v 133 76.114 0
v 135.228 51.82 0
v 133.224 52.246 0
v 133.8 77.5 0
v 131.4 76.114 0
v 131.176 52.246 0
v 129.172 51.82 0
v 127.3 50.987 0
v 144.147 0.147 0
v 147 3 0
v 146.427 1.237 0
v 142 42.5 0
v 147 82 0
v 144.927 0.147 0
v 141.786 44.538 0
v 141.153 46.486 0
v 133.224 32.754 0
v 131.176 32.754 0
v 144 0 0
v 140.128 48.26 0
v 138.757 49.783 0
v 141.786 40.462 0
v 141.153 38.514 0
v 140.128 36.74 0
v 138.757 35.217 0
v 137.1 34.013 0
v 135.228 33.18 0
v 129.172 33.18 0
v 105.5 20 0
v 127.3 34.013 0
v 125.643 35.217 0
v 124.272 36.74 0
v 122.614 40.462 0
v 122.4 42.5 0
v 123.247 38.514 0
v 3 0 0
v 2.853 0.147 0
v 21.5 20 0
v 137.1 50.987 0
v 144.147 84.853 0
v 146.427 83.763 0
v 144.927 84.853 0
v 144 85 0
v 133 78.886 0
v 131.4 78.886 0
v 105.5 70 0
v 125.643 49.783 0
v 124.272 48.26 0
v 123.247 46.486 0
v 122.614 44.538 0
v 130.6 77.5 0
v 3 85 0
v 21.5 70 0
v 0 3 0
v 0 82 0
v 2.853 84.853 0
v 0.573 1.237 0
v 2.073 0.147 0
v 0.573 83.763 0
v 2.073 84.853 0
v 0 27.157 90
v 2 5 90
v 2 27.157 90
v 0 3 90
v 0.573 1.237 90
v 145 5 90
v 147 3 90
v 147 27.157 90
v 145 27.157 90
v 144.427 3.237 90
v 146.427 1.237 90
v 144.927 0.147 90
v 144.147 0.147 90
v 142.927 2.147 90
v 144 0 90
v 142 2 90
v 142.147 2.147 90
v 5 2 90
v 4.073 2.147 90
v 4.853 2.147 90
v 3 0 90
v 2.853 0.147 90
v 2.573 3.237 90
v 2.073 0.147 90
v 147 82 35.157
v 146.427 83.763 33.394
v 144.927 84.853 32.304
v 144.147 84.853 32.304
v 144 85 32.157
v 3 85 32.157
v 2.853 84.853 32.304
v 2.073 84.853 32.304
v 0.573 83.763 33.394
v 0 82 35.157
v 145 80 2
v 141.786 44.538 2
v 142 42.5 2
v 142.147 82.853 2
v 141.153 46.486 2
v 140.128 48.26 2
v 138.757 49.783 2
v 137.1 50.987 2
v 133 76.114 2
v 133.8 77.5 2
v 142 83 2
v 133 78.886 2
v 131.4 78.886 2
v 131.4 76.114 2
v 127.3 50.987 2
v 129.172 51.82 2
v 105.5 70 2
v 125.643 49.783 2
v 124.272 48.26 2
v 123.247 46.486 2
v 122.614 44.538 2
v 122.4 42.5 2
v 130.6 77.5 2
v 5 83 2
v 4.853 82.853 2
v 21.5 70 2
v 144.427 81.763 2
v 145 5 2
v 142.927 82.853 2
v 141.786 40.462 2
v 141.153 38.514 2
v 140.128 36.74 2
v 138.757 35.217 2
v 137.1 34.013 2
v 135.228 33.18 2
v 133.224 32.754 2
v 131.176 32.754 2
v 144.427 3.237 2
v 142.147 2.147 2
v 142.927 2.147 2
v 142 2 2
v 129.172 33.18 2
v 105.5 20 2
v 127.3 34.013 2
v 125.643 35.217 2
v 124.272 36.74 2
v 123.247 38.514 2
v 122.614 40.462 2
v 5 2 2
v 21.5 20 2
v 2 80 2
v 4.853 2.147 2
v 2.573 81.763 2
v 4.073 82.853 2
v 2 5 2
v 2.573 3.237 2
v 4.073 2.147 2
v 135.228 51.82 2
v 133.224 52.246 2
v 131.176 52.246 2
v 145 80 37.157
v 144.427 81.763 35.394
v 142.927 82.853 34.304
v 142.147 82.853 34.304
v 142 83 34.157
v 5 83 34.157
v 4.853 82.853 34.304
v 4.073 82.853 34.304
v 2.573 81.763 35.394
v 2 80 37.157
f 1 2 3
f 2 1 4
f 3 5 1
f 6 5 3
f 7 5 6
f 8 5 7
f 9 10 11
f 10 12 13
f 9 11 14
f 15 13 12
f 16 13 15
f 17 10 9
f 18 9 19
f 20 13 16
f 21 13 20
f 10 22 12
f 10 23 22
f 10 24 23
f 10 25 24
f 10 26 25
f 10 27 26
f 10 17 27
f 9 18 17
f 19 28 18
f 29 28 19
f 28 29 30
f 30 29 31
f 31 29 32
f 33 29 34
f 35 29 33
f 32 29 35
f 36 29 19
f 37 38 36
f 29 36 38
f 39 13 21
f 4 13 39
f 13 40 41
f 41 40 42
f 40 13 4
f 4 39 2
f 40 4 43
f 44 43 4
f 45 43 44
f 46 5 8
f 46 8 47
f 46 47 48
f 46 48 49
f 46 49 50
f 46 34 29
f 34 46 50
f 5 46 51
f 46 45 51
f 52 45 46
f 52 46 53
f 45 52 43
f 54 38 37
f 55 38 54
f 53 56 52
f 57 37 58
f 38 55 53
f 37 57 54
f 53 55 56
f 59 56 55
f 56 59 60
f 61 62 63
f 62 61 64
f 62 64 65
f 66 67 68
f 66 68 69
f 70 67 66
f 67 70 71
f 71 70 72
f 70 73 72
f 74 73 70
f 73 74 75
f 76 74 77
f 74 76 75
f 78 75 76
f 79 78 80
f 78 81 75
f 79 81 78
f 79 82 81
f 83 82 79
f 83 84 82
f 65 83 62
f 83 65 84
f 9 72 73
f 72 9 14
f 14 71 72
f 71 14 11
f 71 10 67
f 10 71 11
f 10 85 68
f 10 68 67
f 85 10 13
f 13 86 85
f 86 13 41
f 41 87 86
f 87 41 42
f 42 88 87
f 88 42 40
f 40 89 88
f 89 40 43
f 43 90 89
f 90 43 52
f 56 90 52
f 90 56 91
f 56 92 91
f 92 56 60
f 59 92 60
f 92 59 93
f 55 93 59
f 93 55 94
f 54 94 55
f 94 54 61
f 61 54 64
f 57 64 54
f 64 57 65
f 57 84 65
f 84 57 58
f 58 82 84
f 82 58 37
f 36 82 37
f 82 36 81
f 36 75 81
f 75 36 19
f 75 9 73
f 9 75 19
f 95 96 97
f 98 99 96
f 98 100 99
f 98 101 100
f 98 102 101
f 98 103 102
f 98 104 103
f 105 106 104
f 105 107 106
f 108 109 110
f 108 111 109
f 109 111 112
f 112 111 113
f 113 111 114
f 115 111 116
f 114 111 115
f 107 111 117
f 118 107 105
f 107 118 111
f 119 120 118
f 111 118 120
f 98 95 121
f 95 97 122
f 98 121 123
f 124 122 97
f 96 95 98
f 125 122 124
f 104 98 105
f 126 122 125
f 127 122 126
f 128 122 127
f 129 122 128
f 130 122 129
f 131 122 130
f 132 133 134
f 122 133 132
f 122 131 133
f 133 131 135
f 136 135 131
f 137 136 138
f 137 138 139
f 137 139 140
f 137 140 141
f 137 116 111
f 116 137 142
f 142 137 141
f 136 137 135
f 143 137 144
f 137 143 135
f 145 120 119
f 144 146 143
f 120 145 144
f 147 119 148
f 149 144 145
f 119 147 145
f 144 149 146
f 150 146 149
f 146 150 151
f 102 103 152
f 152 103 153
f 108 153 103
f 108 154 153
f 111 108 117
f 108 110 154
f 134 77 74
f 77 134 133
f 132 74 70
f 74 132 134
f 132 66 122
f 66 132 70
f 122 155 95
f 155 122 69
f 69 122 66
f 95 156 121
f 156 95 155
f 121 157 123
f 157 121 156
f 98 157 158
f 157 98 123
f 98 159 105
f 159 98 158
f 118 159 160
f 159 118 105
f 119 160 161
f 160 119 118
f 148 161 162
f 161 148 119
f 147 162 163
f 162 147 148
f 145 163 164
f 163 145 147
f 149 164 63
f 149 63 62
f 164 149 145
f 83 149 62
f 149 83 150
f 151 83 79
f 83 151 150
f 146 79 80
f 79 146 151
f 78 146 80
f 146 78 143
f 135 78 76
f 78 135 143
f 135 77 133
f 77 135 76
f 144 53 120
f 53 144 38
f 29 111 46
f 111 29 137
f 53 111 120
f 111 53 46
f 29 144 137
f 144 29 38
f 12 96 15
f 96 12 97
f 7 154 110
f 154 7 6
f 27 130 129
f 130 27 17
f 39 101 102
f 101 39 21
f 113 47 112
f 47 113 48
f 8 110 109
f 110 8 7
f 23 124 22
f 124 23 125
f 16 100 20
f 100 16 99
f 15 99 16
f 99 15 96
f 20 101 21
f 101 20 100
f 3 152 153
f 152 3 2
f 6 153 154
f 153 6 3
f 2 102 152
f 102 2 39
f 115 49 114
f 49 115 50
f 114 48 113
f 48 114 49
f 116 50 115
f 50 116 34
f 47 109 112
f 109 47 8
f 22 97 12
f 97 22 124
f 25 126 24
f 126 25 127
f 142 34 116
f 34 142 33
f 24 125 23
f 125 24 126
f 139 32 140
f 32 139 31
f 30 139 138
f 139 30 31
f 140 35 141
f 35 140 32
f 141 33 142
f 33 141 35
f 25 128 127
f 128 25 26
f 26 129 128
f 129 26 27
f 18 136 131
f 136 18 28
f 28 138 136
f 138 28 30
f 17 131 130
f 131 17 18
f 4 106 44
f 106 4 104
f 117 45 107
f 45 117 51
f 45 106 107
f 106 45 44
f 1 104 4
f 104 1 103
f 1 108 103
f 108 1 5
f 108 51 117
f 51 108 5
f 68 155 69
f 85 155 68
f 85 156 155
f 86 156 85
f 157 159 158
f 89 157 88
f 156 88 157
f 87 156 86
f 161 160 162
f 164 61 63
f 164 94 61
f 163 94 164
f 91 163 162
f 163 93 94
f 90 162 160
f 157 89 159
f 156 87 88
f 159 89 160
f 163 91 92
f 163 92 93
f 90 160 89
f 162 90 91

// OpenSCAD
BaseWidth = 147;
BaseDepth = 85;
BaseHeight = 90;
CornerRadius = 3;
WallThickness = 2;
LCDScreenWidth=84;
LCDScreenHeight=50;
LCDScreenX=21.5;
LCDScreenY=20;
SmokeSensorRadius = 9.8;
SmokeSensorX=BaseWidth-WallThickness*2-1-SmokeSensorRadius;
SmokeSensorY=BaseDepth/2;
LEDRadius=1.6;
LEDX=SmokeSensorX;
LEDY=SmokeSensorY+35;

module RoundedRectangle($Width=BaseWidth, $Depth=BaseDepth, $Radius=CornerRadius) 
{
    polygon(points = [[$Radius, 0], [$Width-$Radius, 0],[$Width, $Radius], [$Width, $Depth-$Radius], [$Width-$Radius, $Depth], [$Radius, $Depth], [0, $Depth-$Radius], [0, $Radius]], paths=[[0,1,2,3,4,5,6,7]]);
        
    translate([$Radius,$Radius,0]){
        circle(r=$Radius);
    }        
    translate([$Width-$Radius,$Radius,0]){
        circle(r=$Radius);
    }
    
    translate([$Width-$Radius,$Depth-$Radius,0]){ 
        circle(r=$Radius);
    }
    
    translate([$Radius,$Depth-$Radius,0]){ 
        circle(r=$Radius);
    }
}


module base3D($Width=BaseWidth, $Depth=BaseDepth, $Height=BaseHeight, $Radius=CornerRadius, $Thickness=WallThickness)
{
    difference()
    {
        linear_extrude(height = $Height, center = false, convexity = 0, twist = 0)
        RoundedRectangle($Width, $Depth, $Radius);
        translate([$Thickness, $Thickness, $Thickness]) {
        linear_extrude(height = $Height, center = false, convexity = 0, twist = 0)
        RoundedRectangle($Width-$Thickness*2, $Depth-$Thickness*2, $Radius);
        }
    }
}

difference() {
    base3D(BaseWidth, BaseDepth, BaseHeight, CornerRadius, WallThickness);
    translate([LCDScreenX, LCDScreenY, 0]) {
        cube(size=[LCDScreenWidth, LCDScreenHeight, WallThickness], center=false);
    }
    translate([SmokeSensorX, SmokeSensorY, 0]){
        cylinder(h=WallThickness, r1=SmokeSensorRadius, r2=SmokeSensorRadius, center=false);
    }
    translate([LEDX, LEDY, 0]){
        cylinder(h=WallThickness, r1=LEDRadius, r2=LEDRadius, center=false);
    }
    translate([0, 200+28, 142+30]){
        rotate([135, 0, 0]){
            cube(size=[200, 200, 200], center=false);
        }
    }
/*    
    translate([0, 0, 33]){
        rotate([45, 0, 0]){
            cube(size=[BaseWidth, BaseDepth/1.42, 200], center=false);
        }
    }
*/
}

/*
difference() {
    translate([0, 0, 33]){
        rotate([45, 0, 0]){
            cube(size=[BaseWidth, BaseDepth/1.42, 200], center=false);
        }
    }

    translate([0, -2, 35]){
        rotate([45, 0, 0]){
            cube(size=[BaseWidth+2, BaseDepth/1.42+2, 200+2], center=false);
        }
    }
}
*/
